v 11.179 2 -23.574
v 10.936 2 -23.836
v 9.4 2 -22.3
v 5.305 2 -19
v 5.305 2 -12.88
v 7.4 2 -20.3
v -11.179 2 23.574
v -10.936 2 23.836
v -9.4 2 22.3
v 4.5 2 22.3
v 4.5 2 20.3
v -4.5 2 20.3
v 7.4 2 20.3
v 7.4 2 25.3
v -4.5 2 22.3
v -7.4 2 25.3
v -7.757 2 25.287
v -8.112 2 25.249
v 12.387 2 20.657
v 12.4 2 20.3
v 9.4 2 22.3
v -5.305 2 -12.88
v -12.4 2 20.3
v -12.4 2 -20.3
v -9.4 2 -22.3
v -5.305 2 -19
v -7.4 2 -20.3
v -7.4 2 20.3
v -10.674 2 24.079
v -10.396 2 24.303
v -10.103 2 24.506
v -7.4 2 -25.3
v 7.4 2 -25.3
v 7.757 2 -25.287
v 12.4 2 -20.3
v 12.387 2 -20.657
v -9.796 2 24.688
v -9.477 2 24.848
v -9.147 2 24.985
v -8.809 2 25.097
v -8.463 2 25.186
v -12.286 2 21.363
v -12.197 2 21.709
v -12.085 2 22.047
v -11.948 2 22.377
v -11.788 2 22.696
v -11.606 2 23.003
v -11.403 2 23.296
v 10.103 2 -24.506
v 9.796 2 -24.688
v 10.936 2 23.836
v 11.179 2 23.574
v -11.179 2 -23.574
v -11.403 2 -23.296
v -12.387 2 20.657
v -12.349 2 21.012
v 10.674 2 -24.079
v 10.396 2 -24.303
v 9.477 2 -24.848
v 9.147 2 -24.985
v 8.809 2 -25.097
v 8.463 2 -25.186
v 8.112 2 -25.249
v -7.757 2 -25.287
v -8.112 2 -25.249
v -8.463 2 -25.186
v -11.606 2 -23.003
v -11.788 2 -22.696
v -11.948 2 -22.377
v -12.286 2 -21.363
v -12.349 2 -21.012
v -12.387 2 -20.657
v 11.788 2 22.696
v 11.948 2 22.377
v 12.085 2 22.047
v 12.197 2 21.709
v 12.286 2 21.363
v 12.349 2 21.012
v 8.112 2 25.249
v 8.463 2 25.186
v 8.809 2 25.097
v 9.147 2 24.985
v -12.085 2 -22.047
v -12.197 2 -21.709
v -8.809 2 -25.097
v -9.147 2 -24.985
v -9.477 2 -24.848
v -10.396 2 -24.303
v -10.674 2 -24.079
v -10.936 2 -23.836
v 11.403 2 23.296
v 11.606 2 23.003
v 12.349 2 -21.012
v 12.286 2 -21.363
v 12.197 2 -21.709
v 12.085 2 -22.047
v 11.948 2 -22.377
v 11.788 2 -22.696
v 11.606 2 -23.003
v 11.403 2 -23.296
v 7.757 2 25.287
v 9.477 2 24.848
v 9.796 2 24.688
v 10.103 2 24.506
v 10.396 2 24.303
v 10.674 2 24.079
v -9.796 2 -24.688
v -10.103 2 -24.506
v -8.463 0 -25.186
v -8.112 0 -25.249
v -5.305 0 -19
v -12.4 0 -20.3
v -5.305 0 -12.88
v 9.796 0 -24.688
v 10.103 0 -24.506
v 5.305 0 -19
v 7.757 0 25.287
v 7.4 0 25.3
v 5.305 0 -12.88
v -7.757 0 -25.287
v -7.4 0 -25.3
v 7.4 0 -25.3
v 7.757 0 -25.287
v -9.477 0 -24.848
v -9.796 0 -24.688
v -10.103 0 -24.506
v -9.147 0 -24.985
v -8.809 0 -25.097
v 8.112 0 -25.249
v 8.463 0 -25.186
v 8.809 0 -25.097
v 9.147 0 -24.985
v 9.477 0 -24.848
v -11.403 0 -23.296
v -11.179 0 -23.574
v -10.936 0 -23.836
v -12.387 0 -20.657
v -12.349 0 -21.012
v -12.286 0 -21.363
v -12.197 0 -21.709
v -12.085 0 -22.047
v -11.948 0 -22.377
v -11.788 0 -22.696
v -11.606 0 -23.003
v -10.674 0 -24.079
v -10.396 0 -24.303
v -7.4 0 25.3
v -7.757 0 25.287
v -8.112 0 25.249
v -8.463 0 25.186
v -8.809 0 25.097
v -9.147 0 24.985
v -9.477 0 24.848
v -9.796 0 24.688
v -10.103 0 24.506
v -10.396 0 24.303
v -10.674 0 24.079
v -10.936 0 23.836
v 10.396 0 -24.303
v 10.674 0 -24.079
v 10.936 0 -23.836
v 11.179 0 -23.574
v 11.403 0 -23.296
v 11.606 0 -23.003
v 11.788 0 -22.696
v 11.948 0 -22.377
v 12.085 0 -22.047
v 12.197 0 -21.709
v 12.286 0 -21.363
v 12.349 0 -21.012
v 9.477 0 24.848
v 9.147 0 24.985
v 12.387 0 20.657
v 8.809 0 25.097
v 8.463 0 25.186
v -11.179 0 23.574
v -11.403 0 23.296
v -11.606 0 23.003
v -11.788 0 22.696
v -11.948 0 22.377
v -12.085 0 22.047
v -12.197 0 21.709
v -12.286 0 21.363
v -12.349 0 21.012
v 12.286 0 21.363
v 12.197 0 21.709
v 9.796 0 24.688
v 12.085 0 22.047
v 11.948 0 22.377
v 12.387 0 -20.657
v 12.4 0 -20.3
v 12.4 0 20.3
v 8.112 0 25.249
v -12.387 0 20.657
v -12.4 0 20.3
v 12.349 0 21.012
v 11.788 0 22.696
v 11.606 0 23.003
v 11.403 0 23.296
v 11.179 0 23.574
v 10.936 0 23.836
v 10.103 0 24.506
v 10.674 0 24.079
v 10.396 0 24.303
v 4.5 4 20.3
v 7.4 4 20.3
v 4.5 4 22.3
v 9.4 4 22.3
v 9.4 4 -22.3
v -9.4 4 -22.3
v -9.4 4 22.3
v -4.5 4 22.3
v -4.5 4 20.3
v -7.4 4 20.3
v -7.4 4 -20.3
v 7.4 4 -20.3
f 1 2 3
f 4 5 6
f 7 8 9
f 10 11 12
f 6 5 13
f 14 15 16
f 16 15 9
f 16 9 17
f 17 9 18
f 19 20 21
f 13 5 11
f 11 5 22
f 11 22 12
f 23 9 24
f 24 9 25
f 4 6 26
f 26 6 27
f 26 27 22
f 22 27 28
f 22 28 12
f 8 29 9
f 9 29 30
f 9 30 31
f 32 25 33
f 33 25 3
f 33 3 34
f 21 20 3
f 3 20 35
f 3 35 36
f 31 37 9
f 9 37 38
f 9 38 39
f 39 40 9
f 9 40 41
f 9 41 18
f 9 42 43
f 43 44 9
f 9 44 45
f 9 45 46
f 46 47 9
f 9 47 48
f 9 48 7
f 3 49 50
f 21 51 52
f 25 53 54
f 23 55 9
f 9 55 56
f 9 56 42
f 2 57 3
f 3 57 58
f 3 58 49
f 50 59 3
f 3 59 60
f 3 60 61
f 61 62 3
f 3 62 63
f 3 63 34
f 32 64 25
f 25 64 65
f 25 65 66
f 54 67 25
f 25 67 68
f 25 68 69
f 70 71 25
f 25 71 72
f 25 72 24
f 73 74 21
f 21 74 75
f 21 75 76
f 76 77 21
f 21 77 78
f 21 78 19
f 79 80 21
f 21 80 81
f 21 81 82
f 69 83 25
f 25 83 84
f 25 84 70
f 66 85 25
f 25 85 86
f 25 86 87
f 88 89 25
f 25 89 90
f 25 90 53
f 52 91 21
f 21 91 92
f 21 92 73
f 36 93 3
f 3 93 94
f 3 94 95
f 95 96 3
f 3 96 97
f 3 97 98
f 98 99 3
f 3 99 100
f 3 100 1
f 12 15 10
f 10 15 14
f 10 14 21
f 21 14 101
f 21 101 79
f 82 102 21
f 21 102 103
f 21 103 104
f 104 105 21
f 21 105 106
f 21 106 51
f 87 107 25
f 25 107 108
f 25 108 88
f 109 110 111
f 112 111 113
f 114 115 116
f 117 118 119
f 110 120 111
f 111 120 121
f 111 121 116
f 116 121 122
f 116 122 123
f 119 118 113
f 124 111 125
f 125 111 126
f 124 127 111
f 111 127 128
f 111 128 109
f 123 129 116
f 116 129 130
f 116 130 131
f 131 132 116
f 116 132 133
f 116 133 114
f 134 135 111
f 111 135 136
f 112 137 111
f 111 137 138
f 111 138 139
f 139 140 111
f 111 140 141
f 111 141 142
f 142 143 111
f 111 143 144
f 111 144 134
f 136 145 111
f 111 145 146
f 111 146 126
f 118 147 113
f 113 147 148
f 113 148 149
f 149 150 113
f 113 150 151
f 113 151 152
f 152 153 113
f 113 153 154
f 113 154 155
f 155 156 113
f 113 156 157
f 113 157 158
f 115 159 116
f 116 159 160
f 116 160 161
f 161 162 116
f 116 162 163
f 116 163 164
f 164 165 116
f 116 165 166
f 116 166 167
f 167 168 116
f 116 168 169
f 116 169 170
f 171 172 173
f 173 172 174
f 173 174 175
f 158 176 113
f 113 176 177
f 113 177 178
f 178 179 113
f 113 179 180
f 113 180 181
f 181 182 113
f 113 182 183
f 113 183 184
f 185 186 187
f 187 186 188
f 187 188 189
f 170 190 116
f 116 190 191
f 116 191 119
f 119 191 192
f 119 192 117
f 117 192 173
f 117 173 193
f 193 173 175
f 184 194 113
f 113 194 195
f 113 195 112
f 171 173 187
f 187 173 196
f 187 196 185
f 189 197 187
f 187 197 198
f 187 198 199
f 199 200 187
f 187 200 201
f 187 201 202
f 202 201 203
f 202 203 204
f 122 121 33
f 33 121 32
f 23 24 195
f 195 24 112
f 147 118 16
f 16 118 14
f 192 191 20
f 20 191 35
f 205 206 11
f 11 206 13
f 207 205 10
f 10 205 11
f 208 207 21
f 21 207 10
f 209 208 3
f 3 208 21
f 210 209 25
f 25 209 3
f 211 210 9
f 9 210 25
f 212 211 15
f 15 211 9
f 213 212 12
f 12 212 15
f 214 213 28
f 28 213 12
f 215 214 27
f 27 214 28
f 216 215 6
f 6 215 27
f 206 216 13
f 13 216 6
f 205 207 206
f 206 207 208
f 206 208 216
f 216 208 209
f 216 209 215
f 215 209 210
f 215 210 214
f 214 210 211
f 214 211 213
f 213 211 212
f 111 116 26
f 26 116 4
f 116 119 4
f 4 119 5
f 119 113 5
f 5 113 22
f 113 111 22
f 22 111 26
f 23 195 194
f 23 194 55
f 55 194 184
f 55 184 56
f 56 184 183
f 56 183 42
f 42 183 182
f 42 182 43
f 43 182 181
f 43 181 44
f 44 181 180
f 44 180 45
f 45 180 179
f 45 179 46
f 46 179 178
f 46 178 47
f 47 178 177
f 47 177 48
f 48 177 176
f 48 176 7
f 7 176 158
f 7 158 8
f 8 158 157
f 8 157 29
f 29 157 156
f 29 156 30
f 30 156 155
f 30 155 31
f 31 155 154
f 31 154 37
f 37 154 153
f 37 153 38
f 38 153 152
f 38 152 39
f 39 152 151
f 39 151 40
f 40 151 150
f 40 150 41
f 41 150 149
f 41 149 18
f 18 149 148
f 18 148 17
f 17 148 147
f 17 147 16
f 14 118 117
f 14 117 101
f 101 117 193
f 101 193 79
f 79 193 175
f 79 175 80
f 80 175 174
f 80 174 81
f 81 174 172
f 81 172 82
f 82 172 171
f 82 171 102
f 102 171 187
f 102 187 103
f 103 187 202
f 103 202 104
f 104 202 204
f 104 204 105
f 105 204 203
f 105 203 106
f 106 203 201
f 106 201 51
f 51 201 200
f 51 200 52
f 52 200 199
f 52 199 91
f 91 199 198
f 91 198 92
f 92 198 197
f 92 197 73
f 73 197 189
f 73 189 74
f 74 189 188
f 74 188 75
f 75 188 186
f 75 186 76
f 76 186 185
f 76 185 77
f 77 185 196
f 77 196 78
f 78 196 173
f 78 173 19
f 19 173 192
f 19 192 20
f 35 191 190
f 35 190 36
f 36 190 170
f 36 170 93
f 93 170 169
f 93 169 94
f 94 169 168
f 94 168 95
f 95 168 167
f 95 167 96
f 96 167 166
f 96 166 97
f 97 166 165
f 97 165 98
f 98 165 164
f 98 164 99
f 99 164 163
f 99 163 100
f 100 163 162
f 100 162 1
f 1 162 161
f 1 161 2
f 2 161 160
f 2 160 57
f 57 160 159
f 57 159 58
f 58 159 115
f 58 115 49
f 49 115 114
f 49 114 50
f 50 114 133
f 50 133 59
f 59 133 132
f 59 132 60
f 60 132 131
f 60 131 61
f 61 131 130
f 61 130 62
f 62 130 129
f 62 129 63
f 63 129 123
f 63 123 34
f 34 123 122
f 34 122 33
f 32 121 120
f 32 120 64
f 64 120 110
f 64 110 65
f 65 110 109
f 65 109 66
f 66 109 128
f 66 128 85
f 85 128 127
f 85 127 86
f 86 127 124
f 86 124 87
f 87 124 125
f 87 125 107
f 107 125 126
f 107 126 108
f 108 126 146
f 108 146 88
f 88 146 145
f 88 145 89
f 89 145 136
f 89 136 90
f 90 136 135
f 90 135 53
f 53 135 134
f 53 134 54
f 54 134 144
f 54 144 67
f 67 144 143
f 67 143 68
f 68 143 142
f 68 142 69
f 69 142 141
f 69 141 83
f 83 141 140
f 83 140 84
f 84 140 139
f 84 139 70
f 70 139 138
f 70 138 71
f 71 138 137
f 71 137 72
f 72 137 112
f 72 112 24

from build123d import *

# Parameters (mm, degrees)
SKETCH1_W           = 24.8
SKETCH1_H           = 50.6
BOSS_EXTRUDE1_DEPTH = 2
BOSS_EXTRUDE2_DEPTH = 2
SKETCH3_W           = 10.61
SKETCH3_H           = 6.12
CUT_EXTRUDE1_DEPTH  = 3
FILLET1_R           = 5


with BuildPart() as part:
    # Sketch1 → Boss-Extrude1 (new body)
    with BuildSketch(Plane(origin=(0, 0, 0), x_dir=(1, 0, 0), z_dir=(0, 1, 0))):
        Rectangle(SKETCH1_W, SKETCH1_H)
    extrude(amount=BOSS_EXTRUDE1_DEPTH)

    # Sketch2 → Boss-Extrude2 (add)
    with BuildSketch(Plane(origin=(0, 2, 0), x_dir=(1, 0, 0), z_dir=(0, 1, 0))):
        Polygon((-7.4, 20.3), (7.4, 20.3), (7.4, -20.3), (4.5, -20.3), (4.5, -22.3), (9.4, -22.3), (9.4, 22.3), (-9.4, 22.3), (-9.4, -22.3), (-4.5, -22.3), (-4.5, -20.3), (-7.4, -20.3), align=None)
    extrude(amount=BOSS_EXTRUDE2_DEPTH)

    # Sketch3 → Cut-Extrude1 (cut, through all)
    with BuildSketch(Plane(origin=(0, 2, 0), x_dir=(1, 0, 0), z_dir=(0, 1, 0))):
        with Locations((0, 15.94)):
            Rectangle(SKETCH3_W, SKETCH3_H)
    extrude(amount=-CUT_EXTRUDE1_DEPTH, mode=Mode.SUBTRACT)

    # Fillet1
    fillet1_edges = [part.edges().sort_by_distance(p)[0] for p in [
        (12.4, 1, -25.3),
        (12.4, 1, 25.3),
        (-12.4, 1, 25.3),
        (-12.4, 1, -25.3),
    ]]
    fillet(fillet1_edges, radius=FILLET1_R)


solid = part.part
